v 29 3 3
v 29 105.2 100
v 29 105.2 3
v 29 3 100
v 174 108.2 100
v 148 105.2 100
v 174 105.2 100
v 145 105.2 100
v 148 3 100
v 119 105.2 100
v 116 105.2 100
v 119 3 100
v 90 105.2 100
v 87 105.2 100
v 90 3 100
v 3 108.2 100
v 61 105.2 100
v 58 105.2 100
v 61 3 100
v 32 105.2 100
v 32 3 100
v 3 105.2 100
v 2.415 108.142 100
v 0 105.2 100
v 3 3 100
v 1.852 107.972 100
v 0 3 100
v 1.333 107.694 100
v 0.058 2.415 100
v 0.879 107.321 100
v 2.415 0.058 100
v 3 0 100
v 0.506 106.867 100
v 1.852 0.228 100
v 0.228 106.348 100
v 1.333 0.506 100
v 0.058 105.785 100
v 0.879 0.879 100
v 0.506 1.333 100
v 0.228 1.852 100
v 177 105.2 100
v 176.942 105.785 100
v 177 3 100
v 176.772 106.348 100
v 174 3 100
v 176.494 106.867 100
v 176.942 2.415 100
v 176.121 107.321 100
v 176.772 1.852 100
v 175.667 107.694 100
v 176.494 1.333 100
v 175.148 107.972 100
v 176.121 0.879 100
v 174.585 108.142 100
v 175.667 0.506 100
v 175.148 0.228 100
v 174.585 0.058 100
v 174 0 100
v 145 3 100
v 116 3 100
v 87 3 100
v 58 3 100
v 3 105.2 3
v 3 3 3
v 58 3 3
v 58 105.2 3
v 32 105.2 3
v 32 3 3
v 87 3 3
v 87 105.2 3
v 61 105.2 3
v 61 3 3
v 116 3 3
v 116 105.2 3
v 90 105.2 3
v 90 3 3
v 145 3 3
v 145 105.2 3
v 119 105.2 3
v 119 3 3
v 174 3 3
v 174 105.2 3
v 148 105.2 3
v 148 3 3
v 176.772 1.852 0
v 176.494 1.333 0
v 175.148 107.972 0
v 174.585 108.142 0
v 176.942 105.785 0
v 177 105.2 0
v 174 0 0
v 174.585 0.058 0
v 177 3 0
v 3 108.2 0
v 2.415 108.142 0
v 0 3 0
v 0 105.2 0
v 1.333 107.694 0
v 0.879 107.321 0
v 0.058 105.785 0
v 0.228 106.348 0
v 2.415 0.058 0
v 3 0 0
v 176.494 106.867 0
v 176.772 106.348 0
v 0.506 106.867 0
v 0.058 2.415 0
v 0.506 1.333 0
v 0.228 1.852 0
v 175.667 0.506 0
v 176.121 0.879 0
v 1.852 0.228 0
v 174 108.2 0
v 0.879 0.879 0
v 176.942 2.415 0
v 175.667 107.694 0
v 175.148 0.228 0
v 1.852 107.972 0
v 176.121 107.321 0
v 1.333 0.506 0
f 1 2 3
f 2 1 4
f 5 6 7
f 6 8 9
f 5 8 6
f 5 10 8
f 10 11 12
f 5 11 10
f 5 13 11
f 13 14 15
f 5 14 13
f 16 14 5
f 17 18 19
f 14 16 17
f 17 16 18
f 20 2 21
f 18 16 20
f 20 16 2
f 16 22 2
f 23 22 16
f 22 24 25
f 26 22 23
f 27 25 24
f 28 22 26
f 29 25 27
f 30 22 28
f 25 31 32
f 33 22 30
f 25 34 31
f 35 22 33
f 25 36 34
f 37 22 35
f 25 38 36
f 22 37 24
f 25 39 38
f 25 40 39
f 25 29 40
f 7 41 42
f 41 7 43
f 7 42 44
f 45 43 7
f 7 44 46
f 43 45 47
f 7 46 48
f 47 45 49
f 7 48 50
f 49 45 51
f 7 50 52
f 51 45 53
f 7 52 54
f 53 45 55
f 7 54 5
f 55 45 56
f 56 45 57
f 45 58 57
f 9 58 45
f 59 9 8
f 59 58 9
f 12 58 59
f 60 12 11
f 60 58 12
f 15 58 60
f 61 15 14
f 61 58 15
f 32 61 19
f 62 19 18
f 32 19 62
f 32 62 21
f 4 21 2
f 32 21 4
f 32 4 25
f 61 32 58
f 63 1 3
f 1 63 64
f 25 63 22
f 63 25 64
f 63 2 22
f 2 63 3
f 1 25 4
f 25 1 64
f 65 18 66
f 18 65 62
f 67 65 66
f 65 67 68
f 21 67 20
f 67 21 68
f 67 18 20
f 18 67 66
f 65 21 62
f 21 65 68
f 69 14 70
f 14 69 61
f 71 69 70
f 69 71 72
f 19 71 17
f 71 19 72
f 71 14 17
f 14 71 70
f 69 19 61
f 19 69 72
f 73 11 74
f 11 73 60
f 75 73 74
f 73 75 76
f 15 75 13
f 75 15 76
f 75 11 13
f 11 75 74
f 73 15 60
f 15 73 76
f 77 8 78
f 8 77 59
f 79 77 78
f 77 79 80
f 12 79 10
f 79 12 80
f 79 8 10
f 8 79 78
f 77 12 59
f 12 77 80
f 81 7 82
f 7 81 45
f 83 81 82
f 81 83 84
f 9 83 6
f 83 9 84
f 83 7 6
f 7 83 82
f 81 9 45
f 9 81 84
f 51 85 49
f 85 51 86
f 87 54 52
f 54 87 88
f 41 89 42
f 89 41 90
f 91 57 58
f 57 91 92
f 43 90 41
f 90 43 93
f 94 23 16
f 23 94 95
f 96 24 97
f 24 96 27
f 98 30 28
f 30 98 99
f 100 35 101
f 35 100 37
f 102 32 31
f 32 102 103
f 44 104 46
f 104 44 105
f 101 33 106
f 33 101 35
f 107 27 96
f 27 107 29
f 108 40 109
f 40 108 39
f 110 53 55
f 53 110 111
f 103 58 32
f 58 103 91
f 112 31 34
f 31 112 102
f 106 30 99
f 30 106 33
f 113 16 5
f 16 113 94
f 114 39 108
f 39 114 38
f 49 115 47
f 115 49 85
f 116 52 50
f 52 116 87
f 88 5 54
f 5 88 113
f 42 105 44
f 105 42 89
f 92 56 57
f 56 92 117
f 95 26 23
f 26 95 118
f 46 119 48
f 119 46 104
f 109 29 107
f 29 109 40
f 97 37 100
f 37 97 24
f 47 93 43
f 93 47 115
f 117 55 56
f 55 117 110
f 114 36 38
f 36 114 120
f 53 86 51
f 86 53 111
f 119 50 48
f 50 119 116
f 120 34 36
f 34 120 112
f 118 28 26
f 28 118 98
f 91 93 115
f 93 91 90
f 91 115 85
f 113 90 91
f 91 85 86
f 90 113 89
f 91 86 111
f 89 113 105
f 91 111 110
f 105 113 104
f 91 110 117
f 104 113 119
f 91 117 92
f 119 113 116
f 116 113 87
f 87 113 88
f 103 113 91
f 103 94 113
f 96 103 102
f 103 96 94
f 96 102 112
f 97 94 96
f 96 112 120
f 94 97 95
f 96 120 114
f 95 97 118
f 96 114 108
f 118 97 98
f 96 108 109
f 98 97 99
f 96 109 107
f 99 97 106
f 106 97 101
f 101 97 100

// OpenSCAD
// Parameters
N = 6;              // Number of drives (default 5)
drive_thickness = 25.4;  // Drive thickness in mm
drive_width = 101.6;     // Drive width in mm
tolerance = 0.6;    // Tolerance in mm for snug fit
wall_thickness = 3; // Wall thickness in mm
divider_thickness = 3; // Divider thickness in mm
floor_thickness = 3; // Floor thickness in mm
height = 100;       // Total box height in mm

// Computed values
slot_width = drive_thickness + tolerance;       // 26 mm
internal_depth = drive_width + tolerance;       // 102.2 mm
L = 2 * wall_thickness + N * slot_width + (N - 1) * divider_thickness; // Total length
D = 2 * wall_thickness + internal_depth;        // Total depth (108.2 mm)

// Model
difference() {
    // External shape with rounded vertical edges
    hull() {
        translate([wall_thickness, wall_thickness, 0])
            cylinder(r=wall_thickness, h=height, $fn=32);
        translate([L - wall_thickness, wall_thickness, 0])
            cylinder(r=wall_thickness, h=height, $fn=32);
        translate([wall_thickness, D - wall_thickness, 0])
            cylinder(r=wall_thickness, h=height, $fn=32);
        translate([L - wall_thickness, D - wall_thickness, 0])
            cylinder(r=wall_thickness, h=height, $fn=32);
    }
    // Subtract slots for drives
    for (i = [0 : N - 1]) {
        translate([wall_thickness + i * (slot_width + divider_thickness), 
                   wall_thickness, 
                   floor_thickness])
            cube([slot_width, internal_depth, height - floor_thickness]);
    }
}
